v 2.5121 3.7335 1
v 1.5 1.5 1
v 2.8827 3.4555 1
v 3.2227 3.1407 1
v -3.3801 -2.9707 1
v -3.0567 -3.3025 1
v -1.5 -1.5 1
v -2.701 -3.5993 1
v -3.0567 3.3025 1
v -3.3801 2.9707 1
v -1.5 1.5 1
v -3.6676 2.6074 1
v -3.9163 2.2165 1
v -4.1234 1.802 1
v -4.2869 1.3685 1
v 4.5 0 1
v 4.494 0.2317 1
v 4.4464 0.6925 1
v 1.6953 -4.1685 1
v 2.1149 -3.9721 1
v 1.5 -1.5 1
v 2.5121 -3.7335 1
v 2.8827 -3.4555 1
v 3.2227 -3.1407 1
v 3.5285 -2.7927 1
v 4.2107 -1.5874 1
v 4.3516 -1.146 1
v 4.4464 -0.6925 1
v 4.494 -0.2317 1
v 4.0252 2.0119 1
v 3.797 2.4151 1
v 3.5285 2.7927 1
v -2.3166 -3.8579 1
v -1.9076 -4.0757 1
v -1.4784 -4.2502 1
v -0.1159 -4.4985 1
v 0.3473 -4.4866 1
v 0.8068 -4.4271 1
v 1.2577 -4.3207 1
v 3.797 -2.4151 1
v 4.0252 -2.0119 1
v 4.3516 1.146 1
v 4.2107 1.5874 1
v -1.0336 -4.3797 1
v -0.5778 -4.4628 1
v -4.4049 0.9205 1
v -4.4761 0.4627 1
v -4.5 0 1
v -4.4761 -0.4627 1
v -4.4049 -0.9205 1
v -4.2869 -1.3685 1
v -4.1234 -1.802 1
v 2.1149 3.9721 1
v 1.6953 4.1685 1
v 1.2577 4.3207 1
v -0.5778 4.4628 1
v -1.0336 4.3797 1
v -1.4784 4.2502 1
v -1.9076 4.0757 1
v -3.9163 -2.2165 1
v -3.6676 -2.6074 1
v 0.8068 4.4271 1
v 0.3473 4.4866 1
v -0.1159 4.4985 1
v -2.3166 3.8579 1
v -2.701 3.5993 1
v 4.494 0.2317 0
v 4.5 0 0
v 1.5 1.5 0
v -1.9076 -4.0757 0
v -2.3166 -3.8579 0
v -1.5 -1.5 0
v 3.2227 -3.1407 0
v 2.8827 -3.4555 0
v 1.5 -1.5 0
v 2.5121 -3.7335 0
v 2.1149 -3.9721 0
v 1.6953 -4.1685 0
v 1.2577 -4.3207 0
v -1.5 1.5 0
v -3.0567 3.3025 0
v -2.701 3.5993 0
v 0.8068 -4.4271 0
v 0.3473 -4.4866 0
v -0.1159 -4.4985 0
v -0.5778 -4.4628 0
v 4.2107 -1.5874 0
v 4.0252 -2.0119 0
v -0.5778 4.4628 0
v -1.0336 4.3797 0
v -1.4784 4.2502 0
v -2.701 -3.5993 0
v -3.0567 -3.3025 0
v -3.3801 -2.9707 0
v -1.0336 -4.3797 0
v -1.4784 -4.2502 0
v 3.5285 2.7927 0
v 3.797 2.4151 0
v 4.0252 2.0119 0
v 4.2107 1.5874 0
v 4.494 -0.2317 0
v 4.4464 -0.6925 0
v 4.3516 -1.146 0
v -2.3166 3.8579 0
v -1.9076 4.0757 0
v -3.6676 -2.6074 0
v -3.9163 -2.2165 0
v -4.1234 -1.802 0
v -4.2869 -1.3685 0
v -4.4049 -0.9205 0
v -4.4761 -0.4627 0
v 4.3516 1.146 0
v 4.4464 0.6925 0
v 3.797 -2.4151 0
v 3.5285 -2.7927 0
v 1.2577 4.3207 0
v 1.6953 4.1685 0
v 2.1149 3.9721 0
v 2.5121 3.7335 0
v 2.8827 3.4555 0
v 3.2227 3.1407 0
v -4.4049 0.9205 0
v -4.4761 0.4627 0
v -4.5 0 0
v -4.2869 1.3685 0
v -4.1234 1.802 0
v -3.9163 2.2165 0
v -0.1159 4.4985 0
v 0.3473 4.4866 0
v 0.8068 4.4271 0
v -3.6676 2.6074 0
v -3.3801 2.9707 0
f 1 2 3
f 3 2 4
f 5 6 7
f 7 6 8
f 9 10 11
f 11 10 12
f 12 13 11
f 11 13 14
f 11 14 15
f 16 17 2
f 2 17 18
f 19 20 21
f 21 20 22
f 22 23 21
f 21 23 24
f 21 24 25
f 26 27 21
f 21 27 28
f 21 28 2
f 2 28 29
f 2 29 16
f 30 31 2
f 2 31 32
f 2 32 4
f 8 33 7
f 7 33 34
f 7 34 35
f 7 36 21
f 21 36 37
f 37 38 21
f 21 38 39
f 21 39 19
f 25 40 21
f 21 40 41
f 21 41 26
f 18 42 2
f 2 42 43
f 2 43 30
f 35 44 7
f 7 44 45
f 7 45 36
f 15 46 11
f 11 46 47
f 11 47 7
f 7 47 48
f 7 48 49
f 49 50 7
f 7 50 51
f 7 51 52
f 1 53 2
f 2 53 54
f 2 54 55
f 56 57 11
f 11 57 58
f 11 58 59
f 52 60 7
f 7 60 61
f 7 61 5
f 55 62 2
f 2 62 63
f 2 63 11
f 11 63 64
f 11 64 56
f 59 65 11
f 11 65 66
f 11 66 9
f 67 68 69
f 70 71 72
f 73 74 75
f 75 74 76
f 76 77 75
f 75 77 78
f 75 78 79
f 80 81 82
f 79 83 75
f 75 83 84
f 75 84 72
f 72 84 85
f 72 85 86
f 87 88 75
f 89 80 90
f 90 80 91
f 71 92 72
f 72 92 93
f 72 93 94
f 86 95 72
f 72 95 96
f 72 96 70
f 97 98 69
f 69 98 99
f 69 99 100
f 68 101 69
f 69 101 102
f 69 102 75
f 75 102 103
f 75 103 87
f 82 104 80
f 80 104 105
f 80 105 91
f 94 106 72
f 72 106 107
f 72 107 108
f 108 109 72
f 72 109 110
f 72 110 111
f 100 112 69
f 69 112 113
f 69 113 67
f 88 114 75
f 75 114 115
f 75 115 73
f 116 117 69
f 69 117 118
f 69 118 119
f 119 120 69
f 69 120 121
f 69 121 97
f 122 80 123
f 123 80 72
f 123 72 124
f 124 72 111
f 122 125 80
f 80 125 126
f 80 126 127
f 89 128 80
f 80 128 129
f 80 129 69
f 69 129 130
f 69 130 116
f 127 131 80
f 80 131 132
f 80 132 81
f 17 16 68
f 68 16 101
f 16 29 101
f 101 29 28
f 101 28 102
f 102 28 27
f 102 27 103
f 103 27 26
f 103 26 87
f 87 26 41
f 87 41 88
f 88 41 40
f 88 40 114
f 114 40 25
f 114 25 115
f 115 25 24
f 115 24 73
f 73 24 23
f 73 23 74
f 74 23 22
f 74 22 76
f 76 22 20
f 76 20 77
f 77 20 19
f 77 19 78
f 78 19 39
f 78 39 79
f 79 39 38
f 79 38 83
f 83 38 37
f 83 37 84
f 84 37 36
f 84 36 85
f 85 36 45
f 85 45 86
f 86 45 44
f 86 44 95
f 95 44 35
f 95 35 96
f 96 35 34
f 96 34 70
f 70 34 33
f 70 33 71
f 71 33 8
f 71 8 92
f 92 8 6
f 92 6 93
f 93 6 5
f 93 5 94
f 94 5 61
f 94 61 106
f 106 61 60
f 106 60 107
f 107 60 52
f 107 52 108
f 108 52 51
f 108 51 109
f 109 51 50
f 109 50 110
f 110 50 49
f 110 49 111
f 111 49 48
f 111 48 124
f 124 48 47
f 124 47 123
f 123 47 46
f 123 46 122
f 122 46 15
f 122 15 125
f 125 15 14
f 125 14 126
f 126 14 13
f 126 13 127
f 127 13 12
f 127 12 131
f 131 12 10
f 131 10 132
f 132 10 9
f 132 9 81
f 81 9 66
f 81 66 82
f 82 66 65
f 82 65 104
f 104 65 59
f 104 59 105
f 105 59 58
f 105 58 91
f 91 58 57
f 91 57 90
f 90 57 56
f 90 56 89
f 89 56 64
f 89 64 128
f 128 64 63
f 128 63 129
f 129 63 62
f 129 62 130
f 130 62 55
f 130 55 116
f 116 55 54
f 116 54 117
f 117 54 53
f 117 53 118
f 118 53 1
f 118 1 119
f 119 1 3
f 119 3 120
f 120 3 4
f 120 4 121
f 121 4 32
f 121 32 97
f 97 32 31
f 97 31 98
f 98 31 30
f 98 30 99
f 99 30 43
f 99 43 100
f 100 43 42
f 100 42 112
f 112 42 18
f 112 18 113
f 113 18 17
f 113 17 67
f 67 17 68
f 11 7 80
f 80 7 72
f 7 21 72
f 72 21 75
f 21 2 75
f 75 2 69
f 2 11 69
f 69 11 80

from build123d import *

# Parameters (mm, degrees)
SKETCH_1_R      = 4.5
SKETCH_1_W      = 3
SKETCH_1_H      = 3
EXTRUDE_1_DEPTH = 1


with BuildPart() as part:
    # 草图1 → 凸台-拉伸1 (new body)
    with BuildSketch(Plane.XY):
        Circle(SKETCH_1_R)
        Rectangle(SKETCH_1_W, SKETCH_1_H, mode=Mode.SUBTRACT)
    extrude(amount=EXTRUDE_1_DEPTH)


solid = part.part
